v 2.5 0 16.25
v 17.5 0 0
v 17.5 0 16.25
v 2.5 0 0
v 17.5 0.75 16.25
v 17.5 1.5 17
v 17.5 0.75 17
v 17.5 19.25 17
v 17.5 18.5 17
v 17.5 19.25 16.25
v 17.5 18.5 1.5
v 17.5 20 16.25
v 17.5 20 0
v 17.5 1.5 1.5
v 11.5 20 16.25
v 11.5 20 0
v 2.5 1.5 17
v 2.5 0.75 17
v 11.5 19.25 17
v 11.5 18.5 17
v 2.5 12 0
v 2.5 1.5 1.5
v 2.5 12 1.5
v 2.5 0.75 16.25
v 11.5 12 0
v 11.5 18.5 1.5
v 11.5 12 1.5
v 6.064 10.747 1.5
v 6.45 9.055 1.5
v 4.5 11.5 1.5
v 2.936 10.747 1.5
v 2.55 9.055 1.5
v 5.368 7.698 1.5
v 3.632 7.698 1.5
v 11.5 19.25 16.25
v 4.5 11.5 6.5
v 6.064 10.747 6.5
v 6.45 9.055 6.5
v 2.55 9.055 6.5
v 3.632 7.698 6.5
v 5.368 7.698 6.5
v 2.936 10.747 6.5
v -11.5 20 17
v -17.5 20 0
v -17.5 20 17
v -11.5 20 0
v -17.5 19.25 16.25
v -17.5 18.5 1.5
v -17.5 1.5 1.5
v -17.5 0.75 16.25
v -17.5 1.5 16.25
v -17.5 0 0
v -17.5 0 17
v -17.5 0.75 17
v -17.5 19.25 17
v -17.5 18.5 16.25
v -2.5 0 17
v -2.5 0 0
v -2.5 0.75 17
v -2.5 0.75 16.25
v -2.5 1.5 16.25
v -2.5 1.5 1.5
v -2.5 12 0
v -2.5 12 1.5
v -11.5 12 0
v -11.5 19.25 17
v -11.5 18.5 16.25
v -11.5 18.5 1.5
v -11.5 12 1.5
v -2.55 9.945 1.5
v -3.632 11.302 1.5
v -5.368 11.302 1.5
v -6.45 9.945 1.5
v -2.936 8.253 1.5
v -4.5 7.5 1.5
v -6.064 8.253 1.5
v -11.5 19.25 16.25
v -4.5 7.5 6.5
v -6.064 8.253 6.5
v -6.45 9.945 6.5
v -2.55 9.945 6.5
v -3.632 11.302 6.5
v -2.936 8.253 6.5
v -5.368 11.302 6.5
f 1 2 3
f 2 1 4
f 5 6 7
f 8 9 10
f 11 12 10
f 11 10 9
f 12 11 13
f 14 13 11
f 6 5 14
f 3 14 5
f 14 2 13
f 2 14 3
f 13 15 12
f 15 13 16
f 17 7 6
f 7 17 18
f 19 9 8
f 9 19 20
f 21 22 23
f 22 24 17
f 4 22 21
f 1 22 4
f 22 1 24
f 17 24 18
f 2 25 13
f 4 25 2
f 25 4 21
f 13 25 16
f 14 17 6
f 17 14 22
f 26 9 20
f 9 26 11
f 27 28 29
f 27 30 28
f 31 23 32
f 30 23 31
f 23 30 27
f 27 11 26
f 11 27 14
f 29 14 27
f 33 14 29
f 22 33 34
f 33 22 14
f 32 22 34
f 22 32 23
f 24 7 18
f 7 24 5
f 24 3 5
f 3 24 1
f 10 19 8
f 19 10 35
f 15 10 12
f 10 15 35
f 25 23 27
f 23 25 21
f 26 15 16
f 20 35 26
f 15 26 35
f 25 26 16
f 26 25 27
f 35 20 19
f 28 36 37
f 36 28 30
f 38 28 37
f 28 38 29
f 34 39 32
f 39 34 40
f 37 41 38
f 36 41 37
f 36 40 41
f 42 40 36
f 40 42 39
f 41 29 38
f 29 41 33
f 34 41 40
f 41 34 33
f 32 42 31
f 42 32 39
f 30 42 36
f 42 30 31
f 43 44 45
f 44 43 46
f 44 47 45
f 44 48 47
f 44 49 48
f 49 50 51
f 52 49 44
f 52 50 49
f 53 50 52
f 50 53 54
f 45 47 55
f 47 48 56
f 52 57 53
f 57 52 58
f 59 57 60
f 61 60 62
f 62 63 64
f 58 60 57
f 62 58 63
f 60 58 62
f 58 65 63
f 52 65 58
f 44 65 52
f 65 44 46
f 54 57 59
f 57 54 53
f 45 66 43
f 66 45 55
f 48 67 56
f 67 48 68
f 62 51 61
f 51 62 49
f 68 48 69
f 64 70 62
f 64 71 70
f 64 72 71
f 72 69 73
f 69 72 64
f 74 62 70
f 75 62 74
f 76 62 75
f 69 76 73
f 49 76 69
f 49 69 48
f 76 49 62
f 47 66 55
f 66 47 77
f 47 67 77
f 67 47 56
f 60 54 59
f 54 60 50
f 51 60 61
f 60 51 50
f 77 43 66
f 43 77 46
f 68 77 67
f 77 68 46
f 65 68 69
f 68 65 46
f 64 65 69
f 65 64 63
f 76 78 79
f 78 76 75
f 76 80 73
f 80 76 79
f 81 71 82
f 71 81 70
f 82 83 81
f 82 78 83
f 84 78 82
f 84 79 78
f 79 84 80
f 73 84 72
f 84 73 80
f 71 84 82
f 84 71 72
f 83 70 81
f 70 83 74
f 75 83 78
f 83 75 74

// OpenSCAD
module left_clamp() {
  rotate([90, 0, 90])
    union() {
      difference() {
        cube([20, 17, 15]);

        translate([1.5, 1.5, -1])
          cube([17, 17, 17]);

        translate([-0.25, 16.25, -1])
          cube([1, 1, 17]);

        translate([19.25, 16.25, -1])
          cube([1, 1, 17]);

        translate([12, -0.5, -1])
          cube([13, 19, 10]);
      }

      translate([9.5, 6.5, 2])
        rotate([90, 0, 0])
          cylinder(r=2, h=5);
    }
}

module right_clamp() {
  rotate([90, 0, -90])
    union() {
      difference() {
        cube([20, 17, 15]);

        translate([1.5, 1.5, -1])
          cube([17, 17, 17]);

        translate([0.75, 16.25, -1])
          cube([1, 1, 17]);

        translate([18.25, 16.25, -1])
          cube([1, 1, 17]);

        translate([-2, -0.5, -1])
          cube([10, 19, 10]);
      }

      translate([10.5, 6.5, 2])
        rotate([90, 0, 0])
          cylinder(r=2, h=5);
    }
}

translate([2.5, 0, 0])
  left_clamp();

translate([-2.5, 20, 0])
  right_clamp();
